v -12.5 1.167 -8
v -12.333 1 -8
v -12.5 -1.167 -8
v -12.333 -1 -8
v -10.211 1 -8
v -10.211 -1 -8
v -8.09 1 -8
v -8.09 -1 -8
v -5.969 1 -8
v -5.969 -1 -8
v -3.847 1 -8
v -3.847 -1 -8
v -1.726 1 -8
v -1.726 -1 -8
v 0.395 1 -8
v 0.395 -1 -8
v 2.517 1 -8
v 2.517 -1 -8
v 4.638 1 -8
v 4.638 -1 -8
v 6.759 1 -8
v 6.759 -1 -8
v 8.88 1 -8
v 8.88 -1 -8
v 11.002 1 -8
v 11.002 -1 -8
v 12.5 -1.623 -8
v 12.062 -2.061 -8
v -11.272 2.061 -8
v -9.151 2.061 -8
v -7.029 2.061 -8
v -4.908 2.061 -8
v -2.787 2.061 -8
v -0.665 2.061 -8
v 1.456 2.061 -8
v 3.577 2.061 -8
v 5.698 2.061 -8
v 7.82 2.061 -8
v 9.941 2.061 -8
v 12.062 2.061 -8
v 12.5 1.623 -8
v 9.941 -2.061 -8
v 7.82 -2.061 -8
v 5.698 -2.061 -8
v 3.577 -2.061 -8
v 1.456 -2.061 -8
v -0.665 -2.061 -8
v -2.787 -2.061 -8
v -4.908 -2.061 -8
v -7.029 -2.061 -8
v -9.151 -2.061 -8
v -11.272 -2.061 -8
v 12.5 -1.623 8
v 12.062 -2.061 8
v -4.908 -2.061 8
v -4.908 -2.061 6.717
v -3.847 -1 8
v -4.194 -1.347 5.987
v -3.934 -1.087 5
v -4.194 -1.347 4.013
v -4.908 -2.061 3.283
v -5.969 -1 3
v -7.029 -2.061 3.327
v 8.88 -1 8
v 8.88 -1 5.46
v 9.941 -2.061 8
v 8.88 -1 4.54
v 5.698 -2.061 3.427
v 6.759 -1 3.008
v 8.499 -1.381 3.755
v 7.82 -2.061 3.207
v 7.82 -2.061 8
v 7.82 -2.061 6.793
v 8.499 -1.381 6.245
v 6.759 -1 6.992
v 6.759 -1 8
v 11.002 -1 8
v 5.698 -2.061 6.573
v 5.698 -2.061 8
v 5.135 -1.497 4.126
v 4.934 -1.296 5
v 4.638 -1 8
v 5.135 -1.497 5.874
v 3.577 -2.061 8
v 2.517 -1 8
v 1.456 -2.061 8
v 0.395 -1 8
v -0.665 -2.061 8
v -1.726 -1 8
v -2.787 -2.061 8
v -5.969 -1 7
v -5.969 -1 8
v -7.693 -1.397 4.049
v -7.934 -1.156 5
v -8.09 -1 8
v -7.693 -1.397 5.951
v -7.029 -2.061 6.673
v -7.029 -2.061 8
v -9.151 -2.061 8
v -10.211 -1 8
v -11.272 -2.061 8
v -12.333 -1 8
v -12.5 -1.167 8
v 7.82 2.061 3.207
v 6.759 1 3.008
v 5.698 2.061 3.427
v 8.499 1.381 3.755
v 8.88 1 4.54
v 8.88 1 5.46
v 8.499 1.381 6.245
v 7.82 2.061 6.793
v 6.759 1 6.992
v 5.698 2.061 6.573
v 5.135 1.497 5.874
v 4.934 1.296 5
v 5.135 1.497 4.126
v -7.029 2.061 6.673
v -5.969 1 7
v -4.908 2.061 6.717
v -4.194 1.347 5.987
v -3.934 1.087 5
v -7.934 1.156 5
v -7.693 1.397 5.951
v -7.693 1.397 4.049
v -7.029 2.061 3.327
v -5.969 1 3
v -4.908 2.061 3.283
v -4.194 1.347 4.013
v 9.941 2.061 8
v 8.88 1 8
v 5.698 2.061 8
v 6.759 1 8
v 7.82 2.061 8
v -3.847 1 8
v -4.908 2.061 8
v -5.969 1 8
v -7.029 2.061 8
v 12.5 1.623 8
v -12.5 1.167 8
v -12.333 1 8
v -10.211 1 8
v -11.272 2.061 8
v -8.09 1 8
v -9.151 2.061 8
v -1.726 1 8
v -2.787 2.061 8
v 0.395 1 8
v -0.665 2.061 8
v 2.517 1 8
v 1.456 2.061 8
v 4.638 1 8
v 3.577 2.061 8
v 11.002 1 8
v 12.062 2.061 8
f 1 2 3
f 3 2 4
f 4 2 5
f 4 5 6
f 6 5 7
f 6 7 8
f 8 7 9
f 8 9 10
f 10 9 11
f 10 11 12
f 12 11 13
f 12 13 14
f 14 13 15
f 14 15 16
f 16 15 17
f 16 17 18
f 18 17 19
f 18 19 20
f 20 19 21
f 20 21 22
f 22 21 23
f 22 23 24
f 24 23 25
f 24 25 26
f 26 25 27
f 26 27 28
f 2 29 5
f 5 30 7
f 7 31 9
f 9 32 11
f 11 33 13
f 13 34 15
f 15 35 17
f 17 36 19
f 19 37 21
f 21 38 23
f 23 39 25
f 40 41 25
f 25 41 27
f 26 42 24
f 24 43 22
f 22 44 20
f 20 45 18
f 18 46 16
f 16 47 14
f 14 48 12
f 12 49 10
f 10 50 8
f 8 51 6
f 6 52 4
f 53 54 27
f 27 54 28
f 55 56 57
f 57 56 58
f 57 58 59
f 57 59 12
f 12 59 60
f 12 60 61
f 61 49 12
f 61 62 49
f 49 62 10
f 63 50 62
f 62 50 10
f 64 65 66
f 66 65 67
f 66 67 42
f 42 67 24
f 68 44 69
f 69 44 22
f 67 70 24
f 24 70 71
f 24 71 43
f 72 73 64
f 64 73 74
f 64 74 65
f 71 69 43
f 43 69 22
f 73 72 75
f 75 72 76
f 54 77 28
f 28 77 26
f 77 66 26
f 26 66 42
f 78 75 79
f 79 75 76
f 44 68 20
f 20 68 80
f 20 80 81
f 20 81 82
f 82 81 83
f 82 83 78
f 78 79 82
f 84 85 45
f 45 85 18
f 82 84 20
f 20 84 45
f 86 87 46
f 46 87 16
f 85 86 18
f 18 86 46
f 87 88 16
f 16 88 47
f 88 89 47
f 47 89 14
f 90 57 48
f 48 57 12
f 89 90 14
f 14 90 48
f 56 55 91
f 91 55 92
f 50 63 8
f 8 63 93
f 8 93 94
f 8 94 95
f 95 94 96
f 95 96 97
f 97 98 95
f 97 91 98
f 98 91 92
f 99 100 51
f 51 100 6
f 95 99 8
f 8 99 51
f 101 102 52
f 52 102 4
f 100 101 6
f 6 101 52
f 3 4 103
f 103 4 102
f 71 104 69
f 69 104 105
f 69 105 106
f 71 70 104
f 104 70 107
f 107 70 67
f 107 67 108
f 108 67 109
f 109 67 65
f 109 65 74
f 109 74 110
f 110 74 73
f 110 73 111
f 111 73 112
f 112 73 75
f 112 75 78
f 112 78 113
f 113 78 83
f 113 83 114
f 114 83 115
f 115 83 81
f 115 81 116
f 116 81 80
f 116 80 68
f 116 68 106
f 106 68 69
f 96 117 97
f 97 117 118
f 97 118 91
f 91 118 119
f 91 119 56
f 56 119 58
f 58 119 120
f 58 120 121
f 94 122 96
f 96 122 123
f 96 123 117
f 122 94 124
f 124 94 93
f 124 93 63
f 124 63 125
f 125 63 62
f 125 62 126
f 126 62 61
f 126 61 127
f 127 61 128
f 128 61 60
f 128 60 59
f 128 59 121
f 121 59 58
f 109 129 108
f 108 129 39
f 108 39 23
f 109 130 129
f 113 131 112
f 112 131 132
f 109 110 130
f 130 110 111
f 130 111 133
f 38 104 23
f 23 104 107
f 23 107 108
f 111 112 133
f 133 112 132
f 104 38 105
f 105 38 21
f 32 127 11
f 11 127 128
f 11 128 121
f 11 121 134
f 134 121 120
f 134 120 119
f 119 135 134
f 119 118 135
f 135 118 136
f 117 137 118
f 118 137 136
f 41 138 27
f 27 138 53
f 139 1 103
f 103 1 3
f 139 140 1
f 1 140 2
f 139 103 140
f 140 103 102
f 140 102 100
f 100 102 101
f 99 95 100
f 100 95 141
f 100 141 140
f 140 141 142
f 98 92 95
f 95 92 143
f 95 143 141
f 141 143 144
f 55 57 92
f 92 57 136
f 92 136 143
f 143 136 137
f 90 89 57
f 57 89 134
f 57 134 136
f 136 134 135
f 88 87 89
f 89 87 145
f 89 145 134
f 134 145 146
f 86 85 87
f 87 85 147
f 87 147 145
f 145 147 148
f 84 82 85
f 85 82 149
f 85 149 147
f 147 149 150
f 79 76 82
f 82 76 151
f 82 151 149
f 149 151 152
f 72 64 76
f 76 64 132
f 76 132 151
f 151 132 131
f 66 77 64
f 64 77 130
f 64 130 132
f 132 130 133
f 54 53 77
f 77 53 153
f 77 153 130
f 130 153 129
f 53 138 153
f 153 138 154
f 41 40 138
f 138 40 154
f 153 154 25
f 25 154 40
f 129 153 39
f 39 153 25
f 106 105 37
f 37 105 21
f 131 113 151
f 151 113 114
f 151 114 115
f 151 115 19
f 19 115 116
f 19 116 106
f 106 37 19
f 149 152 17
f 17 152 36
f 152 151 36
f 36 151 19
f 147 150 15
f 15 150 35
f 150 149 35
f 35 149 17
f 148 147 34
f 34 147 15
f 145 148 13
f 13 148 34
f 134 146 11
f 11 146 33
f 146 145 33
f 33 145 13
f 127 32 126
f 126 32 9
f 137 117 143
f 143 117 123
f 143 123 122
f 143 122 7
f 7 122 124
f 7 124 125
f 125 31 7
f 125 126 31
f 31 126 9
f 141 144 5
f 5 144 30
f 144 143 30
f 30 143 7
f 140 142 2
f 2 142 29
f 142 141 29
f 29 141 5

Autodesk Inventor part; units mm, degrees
ref_plane "YZ Plane" through (0, 0, 0) normal (1, 0, 0) x (0, 1, 0)
ref_plane "XZ Plane" through (0, 0, 0) normal (0, 1, 0) x (-1, 0, 0)
ref_plane "XY Plane" through (0, 0, 0) normal (0, 0, 1) x (1, 0, 0)
sketch "Sketch1" plane through (0, 0, 0) normal (0, 1, 0) x (-1, 0, 0)
  line L0 (24, 8) -> (-24, 8)
  line L1 (-24, 8) -> (-24, -8)
  line L2 (-24, -8) -> (24, -8)
  line L3 (24, -8) -> (24, 8)
  point P0 (0, 0)
  dimension "d0" = 48
  dimension "d1" = 16
extrude "Extrusion1" add sketch "Sketch1" along normal blind 1
sketch "Sketch2" plane through (-24, 0, 8) normal (0, 0, 1) x (1, 0, 0)
  line L0 (0, 1) -> (1.5, 1) construction
  line L1 (0, 2.0607) -> (1.0607, 1)
  line L2 (0, 1) -> (48, 1) projected
  line L3 (0, 2.0607) -> (0, 1)
  line L4 (1.0607, 1) -> (2.1213, 2.0607)
  line L5 (1.0607, 1) -> (2.5607, 1) construction
  line L6 (2.1213, 2.0607) -> (3.182, 1)
  line L7 (3.182, 1) -> (4.2426, 2.0607)
  line L8 (4.2426, 2.0607) -> (5.3033, 1)
  line L9 (5.3033, 1) -> (6.364, 2.0607)
  line L10 (6.364, 2.0607) -> (7.4246, 1)
  line L11 (7.4246, 1) -> (8.4853, 2.0607)
  line L12 (7.4246, 1) -> (8.9246, 1) construction
  line L13 (8.4853, 2.0607) -> (9.5459, 1)
  line L14 (9.5459, 1) -> (10.6066, 2.0607)
  line L15 (10.6066, 2.0607) -> (11.6673, 1)
  line L16 (11.6673, 1) -> (12.7279, 2.0607)
  line L17 (12.7279, 2.0607) -> (13.7886, 1)
  line L18 (13.7886, 1) -> (14.8492, 2.0607)
  line L19 (14.8492, 2.0607) -> (15.9099, 1)
  line L20 (15.9099, 1) -> (16.9706, 2.0607)
  line L21 (16.9706, 2.0607) -> (18.0312, 1)
  line L22 (18.0312, 1) -> (19.0919, 2.0607)
  line L23 (19.0919, 2.0607) -> (20.1525, 1)
  line L24 (20.1525, 1) -> (21.2132, 2.0607)
  line L25 (21.2132, 2.0607) -> (22.2739, 1)
  line L26 (22.2739, 1) -> (23.3345, 2.0607)
  line L27 (23.3345, 2.0607) -> (24.3952, 1)
  line L28 (24.3952, 1) -> (25.4558, 2.0607)
  line L29 (25.4558, 2.0607) -> (26.5165, 1)
  line L30 (26.5165, 1) -> (27.5772, 2.0607)
  line L31 (27.5772, 2.0607) -> (28.6378, 1)
  line L32 (27.5772, 2.0607) -> (29.0772, 2.0607) construction
  line L33 (28.6378, 1) -> (29.6985, 2.0607)
  line L34 (29.6985, 2.0607) -> (30.7591, 1)
  line L35 (30.7591, 1) -> (31.8198, 2.0607)
  line L36 (31.8198, 2.0607) -> (32.8805, 1)
  line L37 (32.8805, 1) -> (33.9411, 2.0607)
  line L38 (33.9411, 2.0607) -> (35.0018, 1)
  line L39 (35.0018, 1) -> (36.0624, 2.0607)
  line L40 (36.0624, 2.0607) -> (37.1231, 1)
  line L41 (37.1231, 1) -> (38.1838, 2.0607)
  line L42 (38.1838, 2.0607) -> (39.2444, 1)
  line L43 (39.2444, 1) -> (40.3051, 2.0607)
  line L44 (40.3051, 2.0607) -> (41.3657, 1)
  line L45 (41.3657, 1) -> (42.4264, 2.0607)
  line L46 (42.4264, 2.0607) -> (43.4871, 1)
  line L47 (43.4871, 1) -> (44.5477, 2.0607)
  line L48 (44.5477, 2.0607) -> (45.6084, 1)
  line L49 (45.6084, 1) -> (46.669, 2.0607)
  line L50 (46.669, 2.0607) -> (47.7297, 1)
  line L51 (47.7297, 1) -> (48.7904, 2.0607)
  line L52 (48, 1) -> (48, 1.2703)
  line L53 (48, 0) -> (48, 1) projected
  line L54 (48, 1) -> (0, 1)
  point P0 (24, 0)
  point P1 (47.7297, 1)
  point P2 (47.7297, 1)
  point P3 (45.6084, 1)
  point P4 (45.6084, 1)
  point P5 (43.4871, 1)
  point P6 (43.4871, 1)
  point P7 (41.3657, 1)
  point P8 (41.3657, 1)
  point P9 (39.2444, 1)
  point P10 (39.2444, 1)
  point P11 (37.1231, 1)
  point P12 (37.1231, 1)
  point P13 (35.0018, 1)
  point P14 (35.0018, 1)
  point P15 (32.8805, 1)
  point P16 (32.8805, 1)
  point P17 (30.7591, 1)
  point P18 (30.7591, 1)
  point P19 (28.6378, 1)
  point P20 (28.6378, 1)
  point P21 (26.5165, 1)
  point P22 (26.5165, 1)
  point P23 (24.3952, 1)
  point P24 (24.3952, 1)
  point P25 (22.2739, 1)
  point P26 (22.2739, 1)
  point P27 (18.0312, 1)
  point P28 (18.0312, 1)
  point P29 (15.9099, 1)
  point P30 (15.9099, 1)
  point P31 (9.5459, 1)
  point P32 (9.5459, 1)
  dimension "d6" = 1.5
  dimension "d7" = 1.5
  dimension "d8" = 45
  dimension "d9" = 1.5
  dimension "d10" = 1.5
  dimension "d11" = 90
  dimension "d12" = 1.5
  dimension "d13" = 1.5
  dimension "d14" = 1.5
  dimension "d15" = 1.5
  dimension "d16" = 45
  dimension "d17" = 1.5
  dimension "d18" = 90
  dimension "d19" = 1.5
  dimension "d20" = 1.5
  dimension "d21" = 1.5
  dimension "d22" = 1.5
  dimension "d23" = 1.5
  dimension "d24" = 1.5
  dimension "d25" = 90
  dimension "d26" = 1.5
  dimension "d27" = 90
  dimension "d28" = 1.5
  dimension "d29" = 90
  dimension "d30" = 1.5
  dimension "d31" = 1.5
  dimension "d32" = 1.5
  dimension "d33" = 1.5
  dimension "d34" = 90
  dimension "d35" = 1.5
  dimension "d36" = 90
  dimension "d37" = 1.5
  dimension "d38" = 90
  dimension "d39" = 1.5
  dimension "d40" = 90
  dimension "d41" = 1.5
  dimension "d42" = 90
  dimension "d43" = 1.5
  dimension "d44" = 90
  dimension "d45" = 1.5
  dimension "d46" = 45
  dimension "d47" = 1.5
  dimension "d48" = 90
  dimension "d49" = 1.5
  dimension "d50" = 90
  dimension "d51" = 1.5
  dimension "d52" = 90
  dimension "d53" = 1.5
  dimension "d54" = 90
  dimension "d55" = 1.5
  dimension "d56" = 90
  dimension "d57" = 1.5
  dimension "d58" = 90
  dimension "d59" = 1.5
  dimension "d60" = 90
  dimension "d61" = 1.5
  dimension "d62" = 90
  dimension "d63" = 1.5
  dimension "d64" = 90
  dimension "d65" = 1.5
  dimension "d66" = 90
  dimension "d67" = 1.5
  dimension "d68" = 90
  dimension "d69" = 1.5
extrude "Extrusion2" add sketch "Sketch2" against normal blind 16
sketch "Sketch4" plane through (0, 0, 0) normal (0, -1, 0) x (1, 0, 0)
  line L0 (-24, 8) -> (24, 8) projected
  line L1 (12.5, 8) -> (-12.5, 8)
  line L2 (-12.5, 8) -> (-12.5, -8)
  line L3 (-12.5, -8) -> (12.5, -8)
  line L4 (12.5, -8) -> (12.5, 8)
  line L5 (-12.3327, 8) -> (-12.3327, -8) projected
  line L6 (-12.3327, 8) -> (-24, 8)
  line L7 (-24, 8) -> (-24, -8)
  line L8 (-24, -8) -> (-12.3327, -8)
  line L9 (-12.3327, -8) -> (-12.3327, 8)
  line L10 (24, 8) -> (24, -8) projected
  line L11 (12.5, 8) -> (24, 8)
  line L12 (24, 8) -> (24, -8)
  line L13 (24, -8) -> (12.5, -8)
  line L14 (12.5, -8) -> (12.5, 8)
  point P0 (0, 0)
  dimension "d93" = 25
  dimension "d94" = 16
extrude "Extrusion4" cut sketch "Sketch4" against normal blind 10 contours L0 L2 L8 L7 | L0 L10 L13 L4
sketch "Sketch5" plane through (0, 0, 0) normal (0, -1, 0) x (1, 0, 0)
  circle A0 centre (6.934, 5) radius 2
  circle A1 centre (-5.934, 5) radius 2
  point P0 (0, 0)
  dimension "d97" = 4
  dimension "d98" = 4
extrude "Extrusion5" cut sketch "Sketch5" against normal blind 10
mirror "Mirror1" about plane through (0, 0, 0) normal (0, 1, 0) of "Extrusion2", "Extrusion1", "Extrusion4", "Extrusion5"
properties part number "gantryTensioner2"
